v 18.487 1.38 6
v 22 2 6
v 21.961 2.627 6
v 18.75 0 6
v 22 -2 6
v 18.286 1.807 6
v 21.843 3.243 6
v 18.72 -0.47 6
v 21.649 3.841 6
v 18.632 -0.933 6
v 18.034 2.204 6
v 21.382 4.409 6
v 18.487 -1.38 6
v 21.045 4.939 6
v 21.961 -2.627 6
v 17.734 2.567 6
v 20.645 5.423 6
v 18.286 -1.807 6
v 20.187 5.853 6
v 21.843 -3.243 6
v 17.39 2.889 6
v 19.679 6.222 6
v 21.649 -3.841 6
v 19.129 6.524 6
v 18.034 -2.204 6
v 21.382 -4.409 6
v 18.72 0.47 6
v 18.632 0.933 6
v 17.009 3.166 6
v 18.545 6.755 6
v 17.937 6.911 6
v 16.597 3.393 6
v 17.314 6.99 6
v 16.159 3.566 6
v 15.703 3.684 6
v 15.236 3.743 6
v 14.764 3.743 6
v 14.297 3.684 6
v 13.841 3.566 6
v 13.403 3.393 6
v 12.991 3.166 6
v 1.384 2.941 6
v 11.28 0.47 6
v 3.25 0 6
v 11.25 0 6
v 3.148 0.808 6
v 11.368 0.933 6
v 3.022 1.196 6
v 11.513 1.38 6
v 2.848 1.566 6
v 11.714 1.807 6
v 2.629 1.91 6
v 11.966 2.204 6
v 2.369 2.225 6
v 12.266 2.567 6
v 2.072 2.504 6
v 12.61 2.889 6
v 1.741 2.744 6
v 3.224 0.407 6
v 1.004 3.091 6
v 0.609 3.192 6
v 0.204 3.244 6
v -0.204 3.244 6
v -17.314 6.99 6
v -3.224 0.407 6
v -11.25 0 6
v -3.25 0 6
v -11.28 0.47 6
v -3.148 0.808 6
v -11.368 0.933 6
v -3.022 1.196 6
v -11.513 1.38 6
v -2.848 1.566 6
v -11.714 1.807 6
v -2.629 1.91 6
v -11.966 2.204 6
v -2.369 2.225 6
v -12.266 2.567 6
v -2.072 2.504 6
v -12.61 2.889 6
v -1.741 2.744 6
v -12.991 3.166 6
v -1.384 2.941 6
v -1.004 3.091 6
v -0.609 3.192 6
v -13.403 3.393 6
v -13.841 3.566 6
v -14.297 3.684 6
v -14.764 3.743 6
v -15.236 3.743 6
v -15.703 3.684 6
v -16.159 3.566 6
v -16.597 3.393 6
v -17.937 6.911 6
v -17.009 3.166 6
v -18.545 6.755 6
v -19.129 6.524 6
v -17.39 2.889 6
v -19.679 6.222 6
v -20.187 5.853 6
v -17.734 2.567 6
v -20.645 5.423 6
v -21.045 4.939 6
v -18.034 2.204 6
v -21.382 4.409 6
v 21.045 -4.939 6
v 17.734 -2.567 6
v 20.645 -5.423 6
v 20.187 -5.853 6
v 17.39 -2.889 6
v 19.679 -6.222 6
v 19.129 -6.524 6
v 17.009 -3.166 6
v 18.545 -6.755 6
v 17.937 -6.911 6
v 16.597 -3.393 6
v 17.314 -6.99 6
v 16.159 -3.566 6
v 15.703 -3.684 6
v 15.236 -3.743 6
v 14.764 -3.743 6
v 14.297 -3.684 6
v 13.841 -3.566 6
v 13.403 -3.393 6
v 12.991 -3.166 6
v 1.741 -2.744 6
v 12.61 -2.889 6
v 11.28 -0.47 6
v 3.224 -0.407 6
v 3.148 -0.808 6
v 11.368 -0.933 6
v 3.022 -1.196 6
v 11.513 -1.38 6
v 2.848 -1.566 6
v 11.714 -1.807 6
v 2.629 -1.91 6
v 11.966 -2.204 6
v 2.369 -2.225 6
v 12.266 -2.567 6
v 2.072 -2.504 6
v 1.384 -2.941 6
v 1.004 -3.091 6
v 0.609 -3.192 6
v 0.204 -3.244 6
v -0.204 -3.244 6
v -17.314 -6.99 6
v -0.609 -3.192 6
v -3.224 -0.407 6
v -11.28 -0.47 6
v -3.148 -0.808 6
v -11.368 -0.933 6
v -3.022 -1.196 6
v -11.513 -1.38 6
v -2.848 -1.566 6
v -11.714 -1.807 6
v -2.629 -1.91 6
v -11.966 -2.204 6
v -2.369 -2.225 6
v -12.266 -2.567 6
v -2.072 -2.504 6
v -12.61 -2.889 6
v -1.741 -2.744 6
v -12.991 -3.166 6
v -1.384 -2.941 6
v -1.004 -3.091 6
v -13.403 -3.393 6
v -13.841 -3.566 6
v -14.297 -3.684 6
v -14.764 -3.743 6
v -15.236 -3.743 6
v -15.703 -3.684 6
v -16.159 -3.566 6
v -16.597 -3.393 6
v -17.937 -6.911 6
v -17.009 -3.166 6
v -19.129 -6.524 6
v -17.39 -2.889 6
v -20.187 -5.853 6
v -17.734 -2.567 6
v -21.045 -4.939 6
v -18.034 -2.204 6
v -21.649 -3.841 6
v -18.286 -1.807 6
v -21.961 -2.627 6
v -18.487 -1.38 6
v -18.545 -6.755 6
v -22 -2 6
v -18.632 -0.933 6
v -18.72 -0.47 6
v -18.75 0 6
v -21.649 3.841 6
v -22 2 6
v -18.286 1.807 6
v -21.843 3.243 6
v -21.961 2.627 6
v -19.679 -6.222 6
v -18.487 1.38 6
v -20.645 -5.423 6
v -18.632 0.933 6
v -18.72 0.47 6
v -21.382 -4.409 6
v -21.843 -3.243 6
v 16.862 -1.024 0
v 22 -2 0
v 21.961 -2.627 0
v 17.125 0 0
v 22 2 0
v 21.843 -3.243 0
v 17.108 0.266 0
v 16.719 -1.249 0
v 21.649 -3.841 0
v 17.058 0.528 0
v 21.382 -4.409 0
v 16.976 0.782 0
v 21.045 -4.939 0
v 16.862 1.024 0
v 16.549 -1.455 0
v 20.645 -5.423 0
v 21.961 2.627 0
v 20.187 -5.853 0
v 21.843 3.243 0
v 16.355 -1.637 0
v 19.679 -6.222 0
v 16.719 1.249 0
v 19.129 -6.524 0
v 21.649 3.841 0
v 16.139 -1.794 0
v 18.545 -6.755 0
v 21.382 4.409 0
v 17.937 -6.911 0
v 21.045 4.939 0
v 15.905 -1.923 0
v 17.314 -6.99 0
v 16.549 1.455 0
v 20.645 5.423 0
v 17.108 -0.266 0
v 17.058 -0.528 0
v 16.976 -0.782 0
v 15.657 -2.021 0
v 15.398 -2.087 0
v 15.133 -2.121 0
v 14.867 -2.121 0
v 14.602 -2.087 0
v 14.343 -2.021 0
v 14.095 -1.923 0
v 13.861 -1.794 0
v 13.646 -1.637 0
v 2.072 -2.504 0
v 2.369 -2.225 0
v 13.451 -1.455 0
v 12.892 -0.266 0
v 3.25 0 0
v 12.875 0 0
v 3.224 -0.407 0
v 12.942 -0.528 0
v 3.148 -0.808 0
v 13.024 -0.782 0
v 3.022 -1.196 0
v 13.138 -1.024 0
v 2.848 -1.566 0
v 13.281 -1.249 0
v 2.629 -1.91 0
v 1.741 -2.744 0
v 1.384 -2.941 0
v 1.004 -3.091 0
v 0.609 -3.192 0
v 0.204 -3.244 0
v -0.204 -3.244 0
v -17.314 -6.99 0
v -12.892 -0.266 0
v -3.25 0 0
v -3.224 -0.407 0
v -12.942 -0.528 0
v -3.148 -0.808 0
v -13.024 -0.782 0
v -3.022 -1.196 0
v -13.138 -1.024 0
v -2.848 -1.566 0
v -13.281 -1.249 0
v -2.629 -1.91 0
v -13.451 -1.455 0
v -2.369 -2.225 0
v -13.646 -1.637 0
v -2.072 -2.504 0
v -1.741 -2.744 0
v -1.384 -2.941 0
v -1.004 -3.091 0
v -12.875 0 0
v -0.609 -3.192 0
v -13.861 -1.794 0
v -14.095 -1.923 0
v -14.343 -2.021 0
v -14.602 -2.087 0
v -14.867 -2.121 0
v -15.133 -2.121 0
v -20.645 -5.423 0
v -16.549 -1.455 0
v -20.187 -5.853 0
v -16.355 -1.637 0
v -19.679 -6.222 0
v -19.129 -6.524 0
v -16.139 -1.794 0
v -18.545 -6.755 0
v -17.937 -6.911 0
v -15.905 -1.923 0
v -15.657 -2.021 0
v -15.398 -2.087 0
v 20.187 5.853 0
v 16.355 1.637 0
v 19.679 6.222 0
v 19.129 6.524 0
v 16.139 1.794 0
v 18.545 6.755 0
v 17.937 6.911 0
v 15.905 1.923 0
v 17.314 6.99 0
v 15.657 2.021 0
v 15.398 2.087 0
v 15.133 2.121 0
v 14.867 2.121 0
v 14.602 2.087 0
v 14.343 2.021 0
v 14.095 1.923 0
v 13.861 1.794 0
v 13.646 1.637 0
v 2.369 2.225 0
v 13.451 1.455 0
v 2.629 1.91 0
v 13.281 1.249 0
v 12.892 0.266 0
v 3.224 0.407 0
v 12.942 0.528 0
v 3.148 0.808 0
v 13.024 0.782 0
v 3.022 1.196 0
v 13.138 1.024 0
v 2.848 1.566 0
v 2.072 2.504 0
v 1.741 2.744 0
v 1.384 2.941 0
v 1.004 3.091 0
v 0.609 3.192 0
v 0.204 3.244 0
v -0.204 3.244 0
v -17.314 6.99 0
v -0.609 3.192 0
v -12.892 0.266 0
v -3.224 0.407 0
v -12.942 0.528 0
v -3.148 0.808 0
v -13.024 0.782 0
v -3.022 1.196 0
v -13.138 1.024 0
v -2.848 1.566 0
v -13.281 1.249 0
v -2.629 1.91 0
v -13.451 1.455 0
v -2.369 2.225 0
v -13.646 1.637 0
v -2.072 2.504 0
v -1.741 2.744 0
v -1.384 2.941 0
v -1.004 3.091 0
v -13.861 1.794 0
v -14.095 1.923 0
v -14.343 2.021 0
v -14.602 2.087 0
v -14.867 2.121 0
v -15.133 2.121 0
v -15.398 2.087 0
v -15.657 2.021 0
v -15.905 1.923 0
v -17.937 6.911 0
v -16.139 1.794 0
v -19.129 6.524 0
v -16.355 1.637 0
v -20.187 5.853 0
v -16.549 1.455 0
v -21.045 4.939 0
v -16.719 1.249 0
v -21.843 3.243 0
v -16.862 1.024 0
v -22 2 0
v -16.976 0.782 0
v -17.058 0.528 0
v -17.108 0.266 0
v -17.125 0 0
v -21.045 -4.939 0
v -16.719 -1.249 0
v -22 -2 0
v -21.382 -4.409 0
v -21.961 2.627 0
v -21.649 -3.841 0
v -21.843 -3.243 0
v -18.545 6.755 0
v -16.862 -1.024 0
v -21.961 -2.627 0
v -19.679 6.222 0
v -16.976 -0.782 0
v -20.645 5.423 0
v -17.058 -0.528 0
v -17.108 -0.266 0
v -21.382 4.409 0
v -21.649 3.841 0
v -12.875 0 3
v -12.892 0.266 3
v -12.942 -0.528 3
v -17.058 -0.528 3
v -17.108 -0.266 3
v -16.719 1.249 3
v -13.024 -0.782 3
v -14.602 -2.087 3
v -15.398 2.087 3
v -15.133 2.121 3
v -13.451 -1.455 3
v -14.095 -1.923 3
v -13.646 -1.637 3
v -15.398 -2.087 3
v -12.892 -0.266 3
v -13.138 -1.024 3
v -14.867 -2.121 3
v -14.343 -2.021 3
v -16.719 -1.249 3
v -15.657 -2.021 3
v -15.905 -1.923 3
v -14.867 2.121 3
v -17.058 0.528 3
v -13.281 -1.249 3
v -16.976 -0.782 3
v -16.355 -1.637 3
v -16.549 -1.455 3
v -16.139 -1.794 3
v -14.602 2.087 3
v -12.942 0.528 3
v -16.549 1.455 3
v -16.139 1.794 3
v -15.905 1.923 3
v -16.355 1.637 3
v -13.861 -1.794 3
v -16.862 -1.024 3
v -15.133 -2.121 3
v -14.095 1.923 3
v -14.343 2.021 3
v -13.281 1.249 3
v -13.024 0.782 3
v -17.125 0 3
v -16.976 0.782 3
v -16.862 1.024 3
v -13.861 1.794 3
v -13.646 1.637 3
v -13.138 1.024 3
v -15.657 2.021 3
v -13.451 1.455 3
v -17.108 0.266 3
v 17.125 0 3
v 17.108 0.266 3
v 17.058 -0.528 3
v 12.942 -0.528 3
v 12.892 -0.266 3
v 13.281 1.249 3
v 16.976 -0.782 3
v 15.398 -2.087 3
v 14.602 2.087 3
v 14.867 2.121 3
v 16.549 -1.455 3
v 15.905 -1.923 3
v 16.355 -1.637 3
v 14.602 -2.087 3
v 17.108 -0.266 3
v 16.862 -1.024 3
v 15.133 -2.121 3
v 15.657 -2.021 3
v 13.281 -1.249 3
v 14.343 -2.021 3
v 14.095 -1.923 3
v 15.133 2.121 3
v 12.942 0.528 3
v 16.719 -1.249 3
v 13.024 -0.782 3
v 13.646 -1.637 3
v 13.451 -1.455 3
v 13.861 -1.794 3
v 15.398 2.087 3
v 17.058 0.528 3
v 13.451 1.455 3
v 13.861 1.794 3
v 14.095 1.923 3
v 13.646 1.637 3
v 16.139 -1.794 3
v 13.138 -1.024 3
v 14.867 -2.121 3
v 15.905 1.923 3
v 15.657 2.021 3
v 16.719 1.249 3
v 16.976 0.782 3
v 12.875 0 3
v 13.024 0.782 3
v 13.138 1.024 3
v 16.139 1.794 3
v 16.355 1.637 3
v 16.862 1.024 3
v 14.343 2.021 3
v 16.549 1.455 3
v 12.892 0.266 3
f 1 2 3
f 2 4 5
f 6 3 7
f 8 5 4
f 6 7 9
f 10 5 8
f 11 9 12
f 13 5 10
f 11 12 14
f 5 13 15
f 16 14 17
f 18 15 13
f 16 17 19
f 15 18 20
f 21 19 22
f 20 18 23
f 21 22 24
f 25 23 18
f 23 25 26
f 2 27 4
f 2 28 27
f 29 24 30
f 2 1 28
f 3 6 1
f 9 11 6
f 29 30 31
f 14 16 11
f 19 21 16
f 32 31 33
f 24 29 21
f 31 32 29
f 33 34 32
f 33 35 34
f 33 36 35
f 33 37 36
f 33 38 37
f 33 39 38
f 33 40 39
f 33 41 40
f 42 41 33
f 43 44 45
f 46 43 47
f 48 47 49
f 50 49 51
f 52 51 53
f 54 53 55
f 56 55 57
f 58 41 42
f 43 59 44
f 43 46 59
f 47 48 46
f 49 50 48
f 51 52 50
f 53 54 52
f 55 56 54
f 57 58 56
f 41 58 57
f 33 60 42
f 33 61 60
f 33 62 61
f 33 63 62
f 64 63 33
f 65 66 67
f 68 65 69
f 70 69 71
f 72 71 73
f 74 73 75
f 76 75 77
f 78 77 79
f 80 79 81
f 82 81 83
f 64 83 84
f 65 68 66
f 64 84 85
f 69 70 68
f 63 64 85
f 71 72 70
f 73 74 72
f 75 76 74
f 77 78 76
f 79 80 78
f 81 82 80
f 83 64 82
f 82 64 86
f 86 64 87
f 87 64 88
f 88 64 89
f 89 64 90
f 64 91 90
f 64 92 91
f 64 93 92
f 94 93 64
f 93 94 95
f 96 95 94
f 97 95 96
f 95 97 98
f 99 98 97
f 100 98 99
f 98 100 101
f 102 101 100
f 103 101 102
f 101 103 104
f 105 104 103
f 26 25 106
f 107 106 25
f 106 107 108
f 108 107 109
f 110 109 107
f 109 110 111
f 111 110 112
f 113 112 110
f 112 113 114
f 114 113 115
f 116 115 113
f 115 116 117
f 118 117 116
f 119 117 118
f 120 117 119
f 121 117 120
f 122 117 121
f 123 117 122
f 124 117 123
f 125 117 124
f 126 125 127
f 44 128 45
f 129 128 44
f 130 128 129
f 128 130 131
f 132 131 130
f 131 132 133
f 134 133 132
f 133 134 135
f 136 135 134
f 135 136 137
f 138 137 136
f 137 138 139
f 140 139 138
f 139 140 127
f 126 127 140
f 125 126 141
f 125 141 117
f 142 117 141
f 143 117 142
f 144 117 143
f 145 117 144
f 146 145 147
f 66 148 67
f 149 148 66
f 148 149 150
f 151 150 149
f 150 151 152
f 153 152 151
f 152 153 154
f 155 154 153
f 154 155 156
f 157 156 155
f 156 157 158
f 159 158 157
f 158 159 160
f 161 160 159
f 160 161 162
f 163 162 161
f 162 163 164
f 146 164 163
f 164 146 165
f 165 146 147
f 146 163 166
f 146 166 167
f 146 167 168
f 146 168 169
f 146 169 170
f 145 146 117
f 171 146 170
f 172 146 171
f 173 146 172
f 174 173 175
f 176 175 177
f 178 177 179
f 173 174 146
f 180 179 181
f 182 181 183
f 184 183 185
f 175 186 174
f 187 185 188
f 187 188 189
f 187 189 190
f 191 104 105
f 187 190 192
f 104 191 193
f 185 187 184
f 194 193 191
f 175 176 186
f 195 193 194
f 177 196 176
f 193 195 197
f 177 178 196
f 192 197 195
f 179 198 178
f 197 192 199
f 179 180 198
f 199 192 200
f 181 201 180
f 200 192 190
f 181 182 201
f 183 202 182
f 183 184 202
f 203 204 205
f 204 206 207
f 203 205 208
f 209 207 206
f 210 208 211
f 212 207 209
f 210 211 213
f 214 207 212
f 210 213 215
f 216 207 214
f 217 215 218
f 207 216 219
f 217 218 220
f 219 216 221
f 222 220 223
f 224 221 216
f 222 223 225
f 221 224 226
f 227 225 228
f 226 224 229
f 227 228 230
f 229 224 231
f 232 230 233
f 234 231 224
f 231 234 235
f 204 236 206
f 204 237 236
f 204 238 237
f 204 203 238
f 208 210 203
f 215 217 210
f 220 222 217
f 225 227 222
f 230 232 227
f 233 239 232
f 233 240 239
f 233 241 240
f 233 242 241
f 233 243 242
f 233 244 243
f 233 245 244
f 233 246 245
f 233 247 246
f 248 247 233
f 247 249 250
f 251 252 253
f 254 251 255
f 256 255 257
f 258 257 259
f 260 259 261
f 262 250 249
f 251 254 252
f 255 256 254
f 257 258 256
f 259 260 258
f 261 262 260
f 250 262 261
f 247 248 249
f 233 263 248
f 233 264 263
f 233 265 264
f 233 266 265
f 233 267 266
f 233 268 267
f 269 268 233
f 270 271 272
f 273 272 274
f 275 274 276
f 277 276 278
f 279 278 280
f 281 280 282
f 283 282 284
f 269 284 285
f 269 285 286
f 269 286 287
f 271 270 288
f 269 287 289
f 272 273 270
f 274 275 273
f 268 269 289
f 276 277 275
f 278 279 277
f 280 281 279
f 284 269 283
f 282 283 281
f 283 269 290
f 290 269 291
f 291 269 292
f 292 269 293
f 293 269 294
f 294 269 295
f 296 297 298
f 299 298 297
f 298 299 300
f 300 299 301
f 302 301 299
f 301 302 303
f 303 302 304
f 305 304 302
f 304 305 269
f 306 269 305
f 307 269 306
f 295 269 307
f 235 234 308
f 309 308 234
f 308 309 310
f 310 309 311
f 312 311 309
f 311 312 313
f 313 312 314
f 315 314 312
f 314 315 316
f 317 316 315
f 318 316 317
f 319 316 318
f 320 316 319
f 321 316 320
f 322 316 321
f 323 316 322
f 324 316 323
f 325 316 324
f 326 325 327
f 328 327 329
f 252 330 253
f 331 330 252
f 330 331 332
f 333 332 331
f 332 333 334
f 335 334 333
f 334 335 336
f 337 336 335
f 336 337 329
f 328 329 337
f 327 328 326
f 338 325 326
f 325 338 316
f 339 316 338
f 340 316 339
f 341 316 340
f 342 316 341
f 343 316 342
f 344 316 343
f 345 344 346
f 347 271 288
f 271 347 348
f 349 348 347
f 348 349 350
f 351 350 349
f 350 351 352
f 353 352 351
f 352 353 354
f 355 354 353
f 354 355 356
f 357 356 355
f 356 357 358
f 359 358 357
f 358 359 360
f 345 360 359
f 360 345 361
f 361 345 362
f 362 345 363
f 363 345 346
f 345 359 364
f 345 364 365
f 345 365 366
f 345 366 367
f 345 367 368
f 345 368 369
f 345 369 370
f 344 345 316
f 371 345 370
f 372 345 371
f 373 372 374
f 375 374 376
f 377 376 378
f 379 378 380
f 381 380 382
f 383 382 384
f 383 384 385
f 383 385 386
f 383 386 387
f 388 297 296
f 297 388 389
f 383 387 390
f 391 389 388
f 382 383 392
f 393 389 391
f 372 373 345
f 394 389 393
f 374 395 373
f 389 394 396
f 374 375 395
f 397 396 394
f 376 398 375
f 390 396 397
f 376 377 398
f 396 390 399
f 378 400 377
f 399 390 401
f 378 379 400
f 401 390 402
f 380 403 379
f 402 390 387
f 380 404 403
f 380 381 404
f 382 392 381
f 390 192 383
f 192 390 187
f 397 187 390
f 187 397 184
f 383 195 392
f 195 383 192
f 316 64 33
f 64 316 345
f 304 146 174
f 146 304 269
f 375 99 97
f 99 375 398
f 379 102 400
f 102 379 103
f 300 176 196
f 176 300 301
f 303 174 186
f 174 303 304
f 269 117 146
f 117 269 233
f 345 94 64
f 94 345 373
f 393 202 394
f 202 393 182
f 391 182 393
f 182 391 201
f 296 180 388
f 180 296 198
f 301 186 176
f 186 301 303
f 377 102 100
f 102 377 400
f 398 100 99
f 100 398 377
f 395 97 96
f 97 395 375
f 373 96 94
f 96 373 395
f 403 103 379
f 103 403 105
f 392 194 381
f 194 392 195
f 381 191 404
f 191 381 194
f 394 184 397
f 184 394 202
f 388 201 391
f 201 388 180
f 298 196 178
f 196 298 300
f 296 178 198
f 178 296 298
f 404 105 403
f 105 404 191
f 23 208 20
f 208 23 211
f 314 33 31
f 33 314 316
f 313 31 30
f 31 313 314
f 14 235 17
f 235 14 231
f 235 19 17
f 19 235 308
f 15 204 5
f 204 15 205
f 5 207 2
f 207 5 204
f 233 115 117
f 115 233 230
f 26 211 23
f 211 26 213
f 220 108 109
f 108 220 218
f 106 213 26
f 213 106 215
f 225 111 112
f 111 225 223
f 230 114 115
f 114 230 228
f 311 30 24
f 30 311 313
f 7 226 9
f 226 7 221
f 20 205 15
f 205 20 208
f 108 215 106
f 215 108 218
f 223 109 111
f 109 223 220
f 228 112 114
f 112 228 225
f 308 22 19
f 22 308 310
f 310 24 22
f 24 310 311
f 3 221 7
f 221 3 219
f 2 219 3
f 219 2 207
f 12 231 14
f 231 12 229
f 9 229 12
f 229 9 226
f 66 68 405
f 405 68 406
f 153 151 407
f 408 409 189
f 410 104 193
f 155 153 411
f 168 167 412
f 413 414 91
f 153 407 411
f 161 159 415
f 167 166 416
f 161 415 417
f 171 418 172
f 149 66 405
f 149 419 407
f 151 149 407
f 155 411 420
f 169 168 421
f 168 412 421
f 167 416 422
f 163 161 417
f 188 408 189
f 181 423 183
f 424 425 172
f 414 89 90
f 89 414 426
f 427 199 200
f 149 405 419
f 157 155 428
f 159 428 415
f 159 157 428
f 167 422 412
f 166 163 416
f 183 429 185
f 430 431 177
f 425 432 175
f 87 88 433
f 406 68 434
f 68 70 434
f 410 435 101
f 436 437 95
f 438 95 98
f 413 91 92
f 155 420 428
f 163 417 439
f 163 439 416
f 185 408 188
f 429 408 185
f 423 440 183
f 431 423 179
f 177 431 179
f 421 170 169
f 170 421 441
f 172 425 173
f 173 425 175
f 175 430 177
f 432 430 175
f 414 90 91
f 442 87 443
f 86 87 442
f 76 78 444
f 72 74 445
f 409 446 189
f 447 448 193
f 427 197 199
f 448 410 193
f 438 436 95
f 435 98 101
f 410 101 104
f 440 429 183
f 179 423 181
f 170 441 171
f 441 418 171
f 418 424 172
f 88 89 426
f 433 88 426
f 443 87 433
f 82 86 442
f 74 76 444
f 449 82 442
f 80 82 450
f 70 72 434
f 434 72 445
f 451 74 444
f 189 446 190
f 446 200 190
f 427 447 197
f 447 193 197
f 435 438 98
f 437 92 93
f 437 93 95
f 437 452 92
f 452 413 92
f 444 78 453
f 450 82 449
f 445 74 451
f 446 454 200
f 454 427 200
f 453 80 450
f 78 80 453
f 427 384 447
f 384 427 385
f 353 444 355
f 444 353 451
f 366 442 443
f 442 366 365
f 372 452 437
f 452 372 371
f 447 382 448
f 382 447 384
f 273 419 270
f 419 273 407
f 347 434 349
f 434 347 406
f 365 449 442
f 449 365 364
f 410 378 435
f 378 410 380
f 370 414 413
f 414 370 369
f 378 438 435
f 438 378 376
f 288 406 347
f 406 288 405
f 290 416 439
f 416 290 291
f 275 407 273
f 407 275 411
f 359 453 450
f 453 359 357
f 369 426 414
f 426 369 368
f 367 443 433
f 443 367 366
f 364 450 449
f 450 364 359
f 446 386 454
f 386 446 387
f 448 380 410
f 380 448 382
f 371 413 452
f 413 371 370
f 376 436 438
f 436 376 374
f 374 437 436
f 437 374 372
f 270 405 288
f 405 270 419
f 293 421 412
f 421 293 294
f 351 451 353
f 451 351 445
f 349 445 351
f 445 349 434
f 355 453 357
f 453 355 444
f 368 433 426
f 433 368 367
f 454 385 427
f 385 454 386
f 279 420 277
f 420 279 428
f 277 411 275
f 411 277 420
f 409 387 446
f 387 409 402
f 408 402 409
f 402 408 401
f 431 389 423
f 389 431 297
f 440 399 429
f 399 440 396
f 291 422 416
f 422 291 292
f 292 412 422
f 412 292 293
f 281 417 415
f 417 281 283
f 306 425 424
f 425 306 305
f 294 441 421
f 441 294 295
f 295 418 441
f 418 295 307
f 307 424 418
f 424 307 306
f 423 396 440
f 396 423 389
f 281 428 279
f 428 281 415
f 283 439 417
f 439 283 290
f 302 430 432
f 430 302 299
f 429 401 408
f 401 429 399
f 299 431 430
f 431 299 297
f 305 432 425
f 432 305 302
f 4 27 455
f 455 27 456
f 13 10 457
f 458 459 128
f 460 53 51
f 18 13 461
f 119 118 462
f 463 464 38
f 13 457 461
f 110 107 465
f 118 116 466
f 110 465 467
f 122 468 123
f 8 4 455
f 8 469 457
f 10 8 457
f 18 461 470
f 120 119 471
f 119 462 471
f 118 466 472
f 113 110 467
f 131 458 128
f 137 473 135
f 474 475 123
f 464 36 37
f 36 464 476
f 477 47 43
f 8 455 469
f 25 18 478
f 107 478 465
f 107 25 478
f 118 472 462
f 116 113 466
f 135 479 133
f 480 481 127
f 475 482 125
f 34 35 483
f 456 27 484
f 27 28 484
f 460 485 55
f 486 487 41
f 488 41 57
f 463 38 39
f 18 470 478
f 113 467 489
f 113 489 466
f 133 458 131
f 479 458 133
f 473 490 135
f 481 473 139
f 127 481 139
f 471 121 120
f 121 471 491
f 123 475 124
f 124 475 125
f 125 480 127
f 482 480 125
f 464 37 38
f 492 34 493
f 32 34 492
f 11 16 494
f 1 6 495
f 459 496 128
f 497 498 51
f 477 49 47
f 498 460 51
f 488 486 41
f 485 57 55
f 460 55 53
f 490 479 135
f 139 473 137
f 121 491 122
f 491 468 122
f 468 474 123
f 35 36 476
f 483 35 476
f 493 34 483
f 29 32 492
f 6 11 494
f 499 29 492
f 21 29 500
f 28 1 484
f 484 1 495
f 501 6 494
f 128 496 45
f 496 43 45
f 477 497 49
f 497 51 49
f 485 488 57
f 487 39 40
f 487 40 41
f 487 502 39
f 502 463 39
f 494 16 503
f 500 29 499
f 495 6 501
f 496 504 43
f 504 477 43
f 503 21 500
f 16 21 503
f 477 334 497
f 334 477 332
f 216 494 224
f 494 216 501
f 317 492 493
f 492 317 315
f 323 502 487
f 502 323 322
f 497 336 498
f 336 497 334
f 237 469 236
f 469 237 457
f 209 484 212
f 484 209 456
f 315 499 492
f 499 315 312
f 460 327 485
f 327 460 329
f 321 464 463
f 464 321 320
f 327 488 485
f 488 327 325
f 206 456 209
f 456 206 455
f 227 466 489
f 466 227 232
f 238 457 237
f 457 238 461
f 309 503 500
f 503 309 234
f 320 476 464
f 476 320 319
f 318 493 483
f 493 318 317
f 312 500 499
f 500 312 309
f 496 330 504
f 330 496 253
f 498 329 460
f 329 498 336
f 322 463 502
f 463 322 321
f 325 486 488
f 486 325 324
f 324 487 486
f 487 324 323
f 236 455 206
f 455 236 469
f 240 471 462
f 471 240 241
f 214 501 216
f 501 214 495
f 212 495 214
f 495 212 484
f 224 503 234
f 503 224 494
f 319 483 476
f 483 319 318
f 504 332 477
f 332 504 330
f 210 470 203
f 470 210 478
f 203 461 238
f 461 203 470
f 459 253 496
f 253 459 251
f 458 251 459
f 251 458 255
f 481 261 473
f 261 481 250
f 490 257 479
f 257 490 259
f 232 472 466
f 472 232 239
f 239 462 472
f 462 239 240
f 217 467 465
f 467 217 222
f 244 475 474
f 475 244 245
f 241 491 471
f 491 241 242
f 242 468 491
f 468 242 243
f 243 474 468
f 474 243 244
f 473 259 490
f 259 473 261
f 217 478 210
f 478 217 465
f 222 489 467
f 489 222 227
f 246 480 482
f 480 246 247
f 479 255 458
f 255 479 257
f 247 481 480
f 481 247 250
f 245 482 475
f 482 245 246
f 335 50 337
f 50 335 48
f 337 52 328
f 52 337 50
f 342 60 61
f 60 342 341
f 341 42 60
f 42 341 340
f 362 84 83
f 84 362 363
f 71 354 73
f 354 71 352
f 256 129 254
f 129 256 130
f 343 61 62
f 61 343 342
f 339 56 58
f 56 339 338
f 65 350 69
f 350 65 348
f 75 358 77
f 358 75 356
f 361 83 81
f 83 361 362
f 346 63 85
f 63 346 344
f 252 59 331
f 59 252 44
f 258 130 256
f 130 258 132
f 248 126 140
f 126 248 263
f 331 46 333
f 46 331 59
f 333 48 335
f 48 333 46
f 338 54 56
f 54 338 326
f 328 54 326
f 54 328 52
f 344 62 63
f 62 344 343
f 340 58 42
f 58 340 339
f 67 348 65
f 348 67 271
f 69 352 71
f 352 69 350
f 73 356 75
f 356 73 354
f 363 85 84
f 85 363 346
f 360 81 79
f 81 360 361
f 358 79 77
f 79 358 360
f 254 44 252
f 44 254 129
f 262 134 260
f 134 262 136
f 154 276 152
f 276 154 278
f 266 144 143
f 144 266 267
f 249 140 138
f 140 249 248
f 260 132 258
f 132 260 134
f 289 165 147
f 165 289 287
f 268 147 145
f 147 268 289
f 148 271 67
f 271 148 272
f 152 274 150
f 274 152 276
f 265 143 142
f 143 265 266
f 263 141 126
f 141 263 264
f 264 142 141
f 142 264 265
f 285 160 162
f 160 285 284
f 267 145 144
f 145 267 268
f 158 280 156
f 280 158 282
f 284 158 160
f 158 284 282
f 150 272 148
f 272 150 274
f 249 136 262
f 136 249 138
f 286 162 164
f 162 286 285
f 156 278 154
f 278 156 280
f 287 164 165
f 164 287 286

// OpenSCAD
$fn = 50;


difference() {
	union() {
		cylinder(h = 6, r = 7.0000000000);
		translate(v = [-7.5000000000, 0.0000000000, 0]) {
			hull() {
				translate(v = [-9.5000000000, 2.0000000000, 0]) {
					cylinder(h = 6, r = 5);
				}
				translate(v = [9.5000000000, 2.0000000000, 0]) {
					cylinder(h = 6, r = 5);
				}
				translate(v = [-9.5000000000, -2.0000000000, 0]) {
					cylinder(h = 6, r = 5);
				}
				translate(v = [9.5000000000, -2.0000000000, 0]) {
					cylinder(h = 6, r = 5);
				}
			}
		}
		translate(v = [-7.5000000000, 0.0000000000, 0]) {
			hull() {
				translate(v = [-9.5000000000, 2.0000000000, 0]) {
					cylinder(h = 6, r = 5);
				}
				translate(v = [9.5000000000, 2.0000000000, 0]) {
					cylinder(h = 6, r = 5);
				}
				translate(v = [-9.5000000000, -2.0000000000, 0]) {
					cylinder(h = 6, r = 5);
				}
				translate(v = [9.5000000000, -2.0000000000, 0]) {
					cylinder(h = 6, r = 5);
				}
			}
		}
		translate(v = [7.5000000000, 0.0000000000, 0]) {
			hull() {
				translate(v = [-9.5000000000, 2.0000000000, 0]) {
					cylinder(h = 6, r = 5);
				}
				translate(v = [9.5000000000, 2.0000000000, 0]) {
					cylinder(h = 6, r = 5);
				}
				translate(v = [-9.5000000000, -2.0000000000, 0]) {
					cylinder(h = 6, r = 5);
				}
				translate(v = [9.5000000000, -2.0000000000, 0]) {
					cylinder(h = 6, r = 5);
				}
			}
		}
		translate(v = [7.5000000000, 0.0000000000, 0]) {
			hull() {
				translate(v = [-9.5000000000, 2.0000000000, 0]) {
					cylinder(h = 6, r = 5);
				}
				translate(v = [9.5000000000, 2.0000000000, 0]) {
					cylinder(h = 6, r = 5);
				}
				translate(v = [-9.5000000000, -2.0000000000, 0]) {
					cylinder(h = 6, r = 5);
				}
				translate(v = [9.5000000000, -2.0000000000, 0]) {
					cylinder(h = 6, r = 5);
				}
			}
		}
	}
	union() {
		translate(v = [-15.0000000000, 0.0000000000, 6]) {
			rotate(a = [0, 0, 0]) {
				difference() {
					union() {
						#translate(v = [0, 0, -6.0000000000]) {
							cylinder(h = 6, r = 2.0000000000);
						}
						#translate(v = [0, 0, -3]) {
							cylinder(h = 3, r1 = 2.1250000000, r2 = 3.7500000000);
						}
						#translate(v = [0, 0, -6.0000000000]) {
							cylinder(h = 6, r = 2.1250000000);
						}
						#translate(v = [0, 0, -6.0000000000]) {
							cylinder(h = 6, r = 2.0000000000);
						}
					}
					union();
				}
			}
		}
		translate(v = [-15.0000000000, 0.0000000000, 6]) {
			rotate(a = [0, 0, 0]) {
				difference() {
					union() {
						#translate(v = [0, 0, -6.0000000000]) {
							cylinder(h = 6, r = 2.0000000000);
						}
						#translate(v = [0, 0, -3]) {
							cylinder(h = 3, r1 = 2.1250000000, r2 = 3.7500000000);
						}
						#translate(v = [0, 0, -6.0000000000]) {
							cylinder(h = 6, r = 2.1250000000);
						}
						#translate(v = [0, 0, -6.0000000000]) {
							cylinder(h = 6, r = 2.0000000000);
						}
					}
					union();
				}
			}
		}
		translate(v = [15.0000000000, 0.0000000000, 6]) {
			rotate(a = [0, 0, 0]) {
				difference() {
					union() {
						#translate(v = [0, 0, -6.0000000000]) {
							cylinder(h = 6, r = 2.0000000000);
						}
						#translate(v = [0, 0, -3]) {
							cylinder(h = 3, r1 = 2.1250000000, r2 = 3.7500000000);
						}
						#translate(v = [0, 0, -6.0000000000]) {
							cylinder(h = 6, r = 2.1250000000);
						}
						#translate(v = [0, 0, -6.0000000000]) {
							cylinder(h = 6, r = 2.0000000000);
						}
					}
					union();
				}
			}
		}
		translate(v = [15.0000000000, 0.0000000000, 6]) {
			rotate(a = [0, 0, 0]) {
				difference() {
					union() {
						#translate(v = [0, 0, -6.0000000000]) {
							cylinder(h = 6, r = 2.0000000000);
						}
						#translate(v = [0, 0, -3]) {
							cylinder(h = 3, r1 = 2.1250000000, r2 = 3.7500000000);
						}
						#translate(v = [0, 0, -6.0000000000]) {
							cylinder(h = 6, r = 2.1250000000);
						}
						#translate(v = [0, 0, -6.0000000000]) {
							cylinder(h = 6, r = 2.0000000000);
						}
					}
					union();
				}
			}
		}
		translate(v = [0, 0, -100]) {
			cylinder(h = 200, r = 3.2500000000);
		}
		translate(v = [0, 0, -100]) {
			cylinder(h = 200, r = 1.8000000000);
		}
	}
}
